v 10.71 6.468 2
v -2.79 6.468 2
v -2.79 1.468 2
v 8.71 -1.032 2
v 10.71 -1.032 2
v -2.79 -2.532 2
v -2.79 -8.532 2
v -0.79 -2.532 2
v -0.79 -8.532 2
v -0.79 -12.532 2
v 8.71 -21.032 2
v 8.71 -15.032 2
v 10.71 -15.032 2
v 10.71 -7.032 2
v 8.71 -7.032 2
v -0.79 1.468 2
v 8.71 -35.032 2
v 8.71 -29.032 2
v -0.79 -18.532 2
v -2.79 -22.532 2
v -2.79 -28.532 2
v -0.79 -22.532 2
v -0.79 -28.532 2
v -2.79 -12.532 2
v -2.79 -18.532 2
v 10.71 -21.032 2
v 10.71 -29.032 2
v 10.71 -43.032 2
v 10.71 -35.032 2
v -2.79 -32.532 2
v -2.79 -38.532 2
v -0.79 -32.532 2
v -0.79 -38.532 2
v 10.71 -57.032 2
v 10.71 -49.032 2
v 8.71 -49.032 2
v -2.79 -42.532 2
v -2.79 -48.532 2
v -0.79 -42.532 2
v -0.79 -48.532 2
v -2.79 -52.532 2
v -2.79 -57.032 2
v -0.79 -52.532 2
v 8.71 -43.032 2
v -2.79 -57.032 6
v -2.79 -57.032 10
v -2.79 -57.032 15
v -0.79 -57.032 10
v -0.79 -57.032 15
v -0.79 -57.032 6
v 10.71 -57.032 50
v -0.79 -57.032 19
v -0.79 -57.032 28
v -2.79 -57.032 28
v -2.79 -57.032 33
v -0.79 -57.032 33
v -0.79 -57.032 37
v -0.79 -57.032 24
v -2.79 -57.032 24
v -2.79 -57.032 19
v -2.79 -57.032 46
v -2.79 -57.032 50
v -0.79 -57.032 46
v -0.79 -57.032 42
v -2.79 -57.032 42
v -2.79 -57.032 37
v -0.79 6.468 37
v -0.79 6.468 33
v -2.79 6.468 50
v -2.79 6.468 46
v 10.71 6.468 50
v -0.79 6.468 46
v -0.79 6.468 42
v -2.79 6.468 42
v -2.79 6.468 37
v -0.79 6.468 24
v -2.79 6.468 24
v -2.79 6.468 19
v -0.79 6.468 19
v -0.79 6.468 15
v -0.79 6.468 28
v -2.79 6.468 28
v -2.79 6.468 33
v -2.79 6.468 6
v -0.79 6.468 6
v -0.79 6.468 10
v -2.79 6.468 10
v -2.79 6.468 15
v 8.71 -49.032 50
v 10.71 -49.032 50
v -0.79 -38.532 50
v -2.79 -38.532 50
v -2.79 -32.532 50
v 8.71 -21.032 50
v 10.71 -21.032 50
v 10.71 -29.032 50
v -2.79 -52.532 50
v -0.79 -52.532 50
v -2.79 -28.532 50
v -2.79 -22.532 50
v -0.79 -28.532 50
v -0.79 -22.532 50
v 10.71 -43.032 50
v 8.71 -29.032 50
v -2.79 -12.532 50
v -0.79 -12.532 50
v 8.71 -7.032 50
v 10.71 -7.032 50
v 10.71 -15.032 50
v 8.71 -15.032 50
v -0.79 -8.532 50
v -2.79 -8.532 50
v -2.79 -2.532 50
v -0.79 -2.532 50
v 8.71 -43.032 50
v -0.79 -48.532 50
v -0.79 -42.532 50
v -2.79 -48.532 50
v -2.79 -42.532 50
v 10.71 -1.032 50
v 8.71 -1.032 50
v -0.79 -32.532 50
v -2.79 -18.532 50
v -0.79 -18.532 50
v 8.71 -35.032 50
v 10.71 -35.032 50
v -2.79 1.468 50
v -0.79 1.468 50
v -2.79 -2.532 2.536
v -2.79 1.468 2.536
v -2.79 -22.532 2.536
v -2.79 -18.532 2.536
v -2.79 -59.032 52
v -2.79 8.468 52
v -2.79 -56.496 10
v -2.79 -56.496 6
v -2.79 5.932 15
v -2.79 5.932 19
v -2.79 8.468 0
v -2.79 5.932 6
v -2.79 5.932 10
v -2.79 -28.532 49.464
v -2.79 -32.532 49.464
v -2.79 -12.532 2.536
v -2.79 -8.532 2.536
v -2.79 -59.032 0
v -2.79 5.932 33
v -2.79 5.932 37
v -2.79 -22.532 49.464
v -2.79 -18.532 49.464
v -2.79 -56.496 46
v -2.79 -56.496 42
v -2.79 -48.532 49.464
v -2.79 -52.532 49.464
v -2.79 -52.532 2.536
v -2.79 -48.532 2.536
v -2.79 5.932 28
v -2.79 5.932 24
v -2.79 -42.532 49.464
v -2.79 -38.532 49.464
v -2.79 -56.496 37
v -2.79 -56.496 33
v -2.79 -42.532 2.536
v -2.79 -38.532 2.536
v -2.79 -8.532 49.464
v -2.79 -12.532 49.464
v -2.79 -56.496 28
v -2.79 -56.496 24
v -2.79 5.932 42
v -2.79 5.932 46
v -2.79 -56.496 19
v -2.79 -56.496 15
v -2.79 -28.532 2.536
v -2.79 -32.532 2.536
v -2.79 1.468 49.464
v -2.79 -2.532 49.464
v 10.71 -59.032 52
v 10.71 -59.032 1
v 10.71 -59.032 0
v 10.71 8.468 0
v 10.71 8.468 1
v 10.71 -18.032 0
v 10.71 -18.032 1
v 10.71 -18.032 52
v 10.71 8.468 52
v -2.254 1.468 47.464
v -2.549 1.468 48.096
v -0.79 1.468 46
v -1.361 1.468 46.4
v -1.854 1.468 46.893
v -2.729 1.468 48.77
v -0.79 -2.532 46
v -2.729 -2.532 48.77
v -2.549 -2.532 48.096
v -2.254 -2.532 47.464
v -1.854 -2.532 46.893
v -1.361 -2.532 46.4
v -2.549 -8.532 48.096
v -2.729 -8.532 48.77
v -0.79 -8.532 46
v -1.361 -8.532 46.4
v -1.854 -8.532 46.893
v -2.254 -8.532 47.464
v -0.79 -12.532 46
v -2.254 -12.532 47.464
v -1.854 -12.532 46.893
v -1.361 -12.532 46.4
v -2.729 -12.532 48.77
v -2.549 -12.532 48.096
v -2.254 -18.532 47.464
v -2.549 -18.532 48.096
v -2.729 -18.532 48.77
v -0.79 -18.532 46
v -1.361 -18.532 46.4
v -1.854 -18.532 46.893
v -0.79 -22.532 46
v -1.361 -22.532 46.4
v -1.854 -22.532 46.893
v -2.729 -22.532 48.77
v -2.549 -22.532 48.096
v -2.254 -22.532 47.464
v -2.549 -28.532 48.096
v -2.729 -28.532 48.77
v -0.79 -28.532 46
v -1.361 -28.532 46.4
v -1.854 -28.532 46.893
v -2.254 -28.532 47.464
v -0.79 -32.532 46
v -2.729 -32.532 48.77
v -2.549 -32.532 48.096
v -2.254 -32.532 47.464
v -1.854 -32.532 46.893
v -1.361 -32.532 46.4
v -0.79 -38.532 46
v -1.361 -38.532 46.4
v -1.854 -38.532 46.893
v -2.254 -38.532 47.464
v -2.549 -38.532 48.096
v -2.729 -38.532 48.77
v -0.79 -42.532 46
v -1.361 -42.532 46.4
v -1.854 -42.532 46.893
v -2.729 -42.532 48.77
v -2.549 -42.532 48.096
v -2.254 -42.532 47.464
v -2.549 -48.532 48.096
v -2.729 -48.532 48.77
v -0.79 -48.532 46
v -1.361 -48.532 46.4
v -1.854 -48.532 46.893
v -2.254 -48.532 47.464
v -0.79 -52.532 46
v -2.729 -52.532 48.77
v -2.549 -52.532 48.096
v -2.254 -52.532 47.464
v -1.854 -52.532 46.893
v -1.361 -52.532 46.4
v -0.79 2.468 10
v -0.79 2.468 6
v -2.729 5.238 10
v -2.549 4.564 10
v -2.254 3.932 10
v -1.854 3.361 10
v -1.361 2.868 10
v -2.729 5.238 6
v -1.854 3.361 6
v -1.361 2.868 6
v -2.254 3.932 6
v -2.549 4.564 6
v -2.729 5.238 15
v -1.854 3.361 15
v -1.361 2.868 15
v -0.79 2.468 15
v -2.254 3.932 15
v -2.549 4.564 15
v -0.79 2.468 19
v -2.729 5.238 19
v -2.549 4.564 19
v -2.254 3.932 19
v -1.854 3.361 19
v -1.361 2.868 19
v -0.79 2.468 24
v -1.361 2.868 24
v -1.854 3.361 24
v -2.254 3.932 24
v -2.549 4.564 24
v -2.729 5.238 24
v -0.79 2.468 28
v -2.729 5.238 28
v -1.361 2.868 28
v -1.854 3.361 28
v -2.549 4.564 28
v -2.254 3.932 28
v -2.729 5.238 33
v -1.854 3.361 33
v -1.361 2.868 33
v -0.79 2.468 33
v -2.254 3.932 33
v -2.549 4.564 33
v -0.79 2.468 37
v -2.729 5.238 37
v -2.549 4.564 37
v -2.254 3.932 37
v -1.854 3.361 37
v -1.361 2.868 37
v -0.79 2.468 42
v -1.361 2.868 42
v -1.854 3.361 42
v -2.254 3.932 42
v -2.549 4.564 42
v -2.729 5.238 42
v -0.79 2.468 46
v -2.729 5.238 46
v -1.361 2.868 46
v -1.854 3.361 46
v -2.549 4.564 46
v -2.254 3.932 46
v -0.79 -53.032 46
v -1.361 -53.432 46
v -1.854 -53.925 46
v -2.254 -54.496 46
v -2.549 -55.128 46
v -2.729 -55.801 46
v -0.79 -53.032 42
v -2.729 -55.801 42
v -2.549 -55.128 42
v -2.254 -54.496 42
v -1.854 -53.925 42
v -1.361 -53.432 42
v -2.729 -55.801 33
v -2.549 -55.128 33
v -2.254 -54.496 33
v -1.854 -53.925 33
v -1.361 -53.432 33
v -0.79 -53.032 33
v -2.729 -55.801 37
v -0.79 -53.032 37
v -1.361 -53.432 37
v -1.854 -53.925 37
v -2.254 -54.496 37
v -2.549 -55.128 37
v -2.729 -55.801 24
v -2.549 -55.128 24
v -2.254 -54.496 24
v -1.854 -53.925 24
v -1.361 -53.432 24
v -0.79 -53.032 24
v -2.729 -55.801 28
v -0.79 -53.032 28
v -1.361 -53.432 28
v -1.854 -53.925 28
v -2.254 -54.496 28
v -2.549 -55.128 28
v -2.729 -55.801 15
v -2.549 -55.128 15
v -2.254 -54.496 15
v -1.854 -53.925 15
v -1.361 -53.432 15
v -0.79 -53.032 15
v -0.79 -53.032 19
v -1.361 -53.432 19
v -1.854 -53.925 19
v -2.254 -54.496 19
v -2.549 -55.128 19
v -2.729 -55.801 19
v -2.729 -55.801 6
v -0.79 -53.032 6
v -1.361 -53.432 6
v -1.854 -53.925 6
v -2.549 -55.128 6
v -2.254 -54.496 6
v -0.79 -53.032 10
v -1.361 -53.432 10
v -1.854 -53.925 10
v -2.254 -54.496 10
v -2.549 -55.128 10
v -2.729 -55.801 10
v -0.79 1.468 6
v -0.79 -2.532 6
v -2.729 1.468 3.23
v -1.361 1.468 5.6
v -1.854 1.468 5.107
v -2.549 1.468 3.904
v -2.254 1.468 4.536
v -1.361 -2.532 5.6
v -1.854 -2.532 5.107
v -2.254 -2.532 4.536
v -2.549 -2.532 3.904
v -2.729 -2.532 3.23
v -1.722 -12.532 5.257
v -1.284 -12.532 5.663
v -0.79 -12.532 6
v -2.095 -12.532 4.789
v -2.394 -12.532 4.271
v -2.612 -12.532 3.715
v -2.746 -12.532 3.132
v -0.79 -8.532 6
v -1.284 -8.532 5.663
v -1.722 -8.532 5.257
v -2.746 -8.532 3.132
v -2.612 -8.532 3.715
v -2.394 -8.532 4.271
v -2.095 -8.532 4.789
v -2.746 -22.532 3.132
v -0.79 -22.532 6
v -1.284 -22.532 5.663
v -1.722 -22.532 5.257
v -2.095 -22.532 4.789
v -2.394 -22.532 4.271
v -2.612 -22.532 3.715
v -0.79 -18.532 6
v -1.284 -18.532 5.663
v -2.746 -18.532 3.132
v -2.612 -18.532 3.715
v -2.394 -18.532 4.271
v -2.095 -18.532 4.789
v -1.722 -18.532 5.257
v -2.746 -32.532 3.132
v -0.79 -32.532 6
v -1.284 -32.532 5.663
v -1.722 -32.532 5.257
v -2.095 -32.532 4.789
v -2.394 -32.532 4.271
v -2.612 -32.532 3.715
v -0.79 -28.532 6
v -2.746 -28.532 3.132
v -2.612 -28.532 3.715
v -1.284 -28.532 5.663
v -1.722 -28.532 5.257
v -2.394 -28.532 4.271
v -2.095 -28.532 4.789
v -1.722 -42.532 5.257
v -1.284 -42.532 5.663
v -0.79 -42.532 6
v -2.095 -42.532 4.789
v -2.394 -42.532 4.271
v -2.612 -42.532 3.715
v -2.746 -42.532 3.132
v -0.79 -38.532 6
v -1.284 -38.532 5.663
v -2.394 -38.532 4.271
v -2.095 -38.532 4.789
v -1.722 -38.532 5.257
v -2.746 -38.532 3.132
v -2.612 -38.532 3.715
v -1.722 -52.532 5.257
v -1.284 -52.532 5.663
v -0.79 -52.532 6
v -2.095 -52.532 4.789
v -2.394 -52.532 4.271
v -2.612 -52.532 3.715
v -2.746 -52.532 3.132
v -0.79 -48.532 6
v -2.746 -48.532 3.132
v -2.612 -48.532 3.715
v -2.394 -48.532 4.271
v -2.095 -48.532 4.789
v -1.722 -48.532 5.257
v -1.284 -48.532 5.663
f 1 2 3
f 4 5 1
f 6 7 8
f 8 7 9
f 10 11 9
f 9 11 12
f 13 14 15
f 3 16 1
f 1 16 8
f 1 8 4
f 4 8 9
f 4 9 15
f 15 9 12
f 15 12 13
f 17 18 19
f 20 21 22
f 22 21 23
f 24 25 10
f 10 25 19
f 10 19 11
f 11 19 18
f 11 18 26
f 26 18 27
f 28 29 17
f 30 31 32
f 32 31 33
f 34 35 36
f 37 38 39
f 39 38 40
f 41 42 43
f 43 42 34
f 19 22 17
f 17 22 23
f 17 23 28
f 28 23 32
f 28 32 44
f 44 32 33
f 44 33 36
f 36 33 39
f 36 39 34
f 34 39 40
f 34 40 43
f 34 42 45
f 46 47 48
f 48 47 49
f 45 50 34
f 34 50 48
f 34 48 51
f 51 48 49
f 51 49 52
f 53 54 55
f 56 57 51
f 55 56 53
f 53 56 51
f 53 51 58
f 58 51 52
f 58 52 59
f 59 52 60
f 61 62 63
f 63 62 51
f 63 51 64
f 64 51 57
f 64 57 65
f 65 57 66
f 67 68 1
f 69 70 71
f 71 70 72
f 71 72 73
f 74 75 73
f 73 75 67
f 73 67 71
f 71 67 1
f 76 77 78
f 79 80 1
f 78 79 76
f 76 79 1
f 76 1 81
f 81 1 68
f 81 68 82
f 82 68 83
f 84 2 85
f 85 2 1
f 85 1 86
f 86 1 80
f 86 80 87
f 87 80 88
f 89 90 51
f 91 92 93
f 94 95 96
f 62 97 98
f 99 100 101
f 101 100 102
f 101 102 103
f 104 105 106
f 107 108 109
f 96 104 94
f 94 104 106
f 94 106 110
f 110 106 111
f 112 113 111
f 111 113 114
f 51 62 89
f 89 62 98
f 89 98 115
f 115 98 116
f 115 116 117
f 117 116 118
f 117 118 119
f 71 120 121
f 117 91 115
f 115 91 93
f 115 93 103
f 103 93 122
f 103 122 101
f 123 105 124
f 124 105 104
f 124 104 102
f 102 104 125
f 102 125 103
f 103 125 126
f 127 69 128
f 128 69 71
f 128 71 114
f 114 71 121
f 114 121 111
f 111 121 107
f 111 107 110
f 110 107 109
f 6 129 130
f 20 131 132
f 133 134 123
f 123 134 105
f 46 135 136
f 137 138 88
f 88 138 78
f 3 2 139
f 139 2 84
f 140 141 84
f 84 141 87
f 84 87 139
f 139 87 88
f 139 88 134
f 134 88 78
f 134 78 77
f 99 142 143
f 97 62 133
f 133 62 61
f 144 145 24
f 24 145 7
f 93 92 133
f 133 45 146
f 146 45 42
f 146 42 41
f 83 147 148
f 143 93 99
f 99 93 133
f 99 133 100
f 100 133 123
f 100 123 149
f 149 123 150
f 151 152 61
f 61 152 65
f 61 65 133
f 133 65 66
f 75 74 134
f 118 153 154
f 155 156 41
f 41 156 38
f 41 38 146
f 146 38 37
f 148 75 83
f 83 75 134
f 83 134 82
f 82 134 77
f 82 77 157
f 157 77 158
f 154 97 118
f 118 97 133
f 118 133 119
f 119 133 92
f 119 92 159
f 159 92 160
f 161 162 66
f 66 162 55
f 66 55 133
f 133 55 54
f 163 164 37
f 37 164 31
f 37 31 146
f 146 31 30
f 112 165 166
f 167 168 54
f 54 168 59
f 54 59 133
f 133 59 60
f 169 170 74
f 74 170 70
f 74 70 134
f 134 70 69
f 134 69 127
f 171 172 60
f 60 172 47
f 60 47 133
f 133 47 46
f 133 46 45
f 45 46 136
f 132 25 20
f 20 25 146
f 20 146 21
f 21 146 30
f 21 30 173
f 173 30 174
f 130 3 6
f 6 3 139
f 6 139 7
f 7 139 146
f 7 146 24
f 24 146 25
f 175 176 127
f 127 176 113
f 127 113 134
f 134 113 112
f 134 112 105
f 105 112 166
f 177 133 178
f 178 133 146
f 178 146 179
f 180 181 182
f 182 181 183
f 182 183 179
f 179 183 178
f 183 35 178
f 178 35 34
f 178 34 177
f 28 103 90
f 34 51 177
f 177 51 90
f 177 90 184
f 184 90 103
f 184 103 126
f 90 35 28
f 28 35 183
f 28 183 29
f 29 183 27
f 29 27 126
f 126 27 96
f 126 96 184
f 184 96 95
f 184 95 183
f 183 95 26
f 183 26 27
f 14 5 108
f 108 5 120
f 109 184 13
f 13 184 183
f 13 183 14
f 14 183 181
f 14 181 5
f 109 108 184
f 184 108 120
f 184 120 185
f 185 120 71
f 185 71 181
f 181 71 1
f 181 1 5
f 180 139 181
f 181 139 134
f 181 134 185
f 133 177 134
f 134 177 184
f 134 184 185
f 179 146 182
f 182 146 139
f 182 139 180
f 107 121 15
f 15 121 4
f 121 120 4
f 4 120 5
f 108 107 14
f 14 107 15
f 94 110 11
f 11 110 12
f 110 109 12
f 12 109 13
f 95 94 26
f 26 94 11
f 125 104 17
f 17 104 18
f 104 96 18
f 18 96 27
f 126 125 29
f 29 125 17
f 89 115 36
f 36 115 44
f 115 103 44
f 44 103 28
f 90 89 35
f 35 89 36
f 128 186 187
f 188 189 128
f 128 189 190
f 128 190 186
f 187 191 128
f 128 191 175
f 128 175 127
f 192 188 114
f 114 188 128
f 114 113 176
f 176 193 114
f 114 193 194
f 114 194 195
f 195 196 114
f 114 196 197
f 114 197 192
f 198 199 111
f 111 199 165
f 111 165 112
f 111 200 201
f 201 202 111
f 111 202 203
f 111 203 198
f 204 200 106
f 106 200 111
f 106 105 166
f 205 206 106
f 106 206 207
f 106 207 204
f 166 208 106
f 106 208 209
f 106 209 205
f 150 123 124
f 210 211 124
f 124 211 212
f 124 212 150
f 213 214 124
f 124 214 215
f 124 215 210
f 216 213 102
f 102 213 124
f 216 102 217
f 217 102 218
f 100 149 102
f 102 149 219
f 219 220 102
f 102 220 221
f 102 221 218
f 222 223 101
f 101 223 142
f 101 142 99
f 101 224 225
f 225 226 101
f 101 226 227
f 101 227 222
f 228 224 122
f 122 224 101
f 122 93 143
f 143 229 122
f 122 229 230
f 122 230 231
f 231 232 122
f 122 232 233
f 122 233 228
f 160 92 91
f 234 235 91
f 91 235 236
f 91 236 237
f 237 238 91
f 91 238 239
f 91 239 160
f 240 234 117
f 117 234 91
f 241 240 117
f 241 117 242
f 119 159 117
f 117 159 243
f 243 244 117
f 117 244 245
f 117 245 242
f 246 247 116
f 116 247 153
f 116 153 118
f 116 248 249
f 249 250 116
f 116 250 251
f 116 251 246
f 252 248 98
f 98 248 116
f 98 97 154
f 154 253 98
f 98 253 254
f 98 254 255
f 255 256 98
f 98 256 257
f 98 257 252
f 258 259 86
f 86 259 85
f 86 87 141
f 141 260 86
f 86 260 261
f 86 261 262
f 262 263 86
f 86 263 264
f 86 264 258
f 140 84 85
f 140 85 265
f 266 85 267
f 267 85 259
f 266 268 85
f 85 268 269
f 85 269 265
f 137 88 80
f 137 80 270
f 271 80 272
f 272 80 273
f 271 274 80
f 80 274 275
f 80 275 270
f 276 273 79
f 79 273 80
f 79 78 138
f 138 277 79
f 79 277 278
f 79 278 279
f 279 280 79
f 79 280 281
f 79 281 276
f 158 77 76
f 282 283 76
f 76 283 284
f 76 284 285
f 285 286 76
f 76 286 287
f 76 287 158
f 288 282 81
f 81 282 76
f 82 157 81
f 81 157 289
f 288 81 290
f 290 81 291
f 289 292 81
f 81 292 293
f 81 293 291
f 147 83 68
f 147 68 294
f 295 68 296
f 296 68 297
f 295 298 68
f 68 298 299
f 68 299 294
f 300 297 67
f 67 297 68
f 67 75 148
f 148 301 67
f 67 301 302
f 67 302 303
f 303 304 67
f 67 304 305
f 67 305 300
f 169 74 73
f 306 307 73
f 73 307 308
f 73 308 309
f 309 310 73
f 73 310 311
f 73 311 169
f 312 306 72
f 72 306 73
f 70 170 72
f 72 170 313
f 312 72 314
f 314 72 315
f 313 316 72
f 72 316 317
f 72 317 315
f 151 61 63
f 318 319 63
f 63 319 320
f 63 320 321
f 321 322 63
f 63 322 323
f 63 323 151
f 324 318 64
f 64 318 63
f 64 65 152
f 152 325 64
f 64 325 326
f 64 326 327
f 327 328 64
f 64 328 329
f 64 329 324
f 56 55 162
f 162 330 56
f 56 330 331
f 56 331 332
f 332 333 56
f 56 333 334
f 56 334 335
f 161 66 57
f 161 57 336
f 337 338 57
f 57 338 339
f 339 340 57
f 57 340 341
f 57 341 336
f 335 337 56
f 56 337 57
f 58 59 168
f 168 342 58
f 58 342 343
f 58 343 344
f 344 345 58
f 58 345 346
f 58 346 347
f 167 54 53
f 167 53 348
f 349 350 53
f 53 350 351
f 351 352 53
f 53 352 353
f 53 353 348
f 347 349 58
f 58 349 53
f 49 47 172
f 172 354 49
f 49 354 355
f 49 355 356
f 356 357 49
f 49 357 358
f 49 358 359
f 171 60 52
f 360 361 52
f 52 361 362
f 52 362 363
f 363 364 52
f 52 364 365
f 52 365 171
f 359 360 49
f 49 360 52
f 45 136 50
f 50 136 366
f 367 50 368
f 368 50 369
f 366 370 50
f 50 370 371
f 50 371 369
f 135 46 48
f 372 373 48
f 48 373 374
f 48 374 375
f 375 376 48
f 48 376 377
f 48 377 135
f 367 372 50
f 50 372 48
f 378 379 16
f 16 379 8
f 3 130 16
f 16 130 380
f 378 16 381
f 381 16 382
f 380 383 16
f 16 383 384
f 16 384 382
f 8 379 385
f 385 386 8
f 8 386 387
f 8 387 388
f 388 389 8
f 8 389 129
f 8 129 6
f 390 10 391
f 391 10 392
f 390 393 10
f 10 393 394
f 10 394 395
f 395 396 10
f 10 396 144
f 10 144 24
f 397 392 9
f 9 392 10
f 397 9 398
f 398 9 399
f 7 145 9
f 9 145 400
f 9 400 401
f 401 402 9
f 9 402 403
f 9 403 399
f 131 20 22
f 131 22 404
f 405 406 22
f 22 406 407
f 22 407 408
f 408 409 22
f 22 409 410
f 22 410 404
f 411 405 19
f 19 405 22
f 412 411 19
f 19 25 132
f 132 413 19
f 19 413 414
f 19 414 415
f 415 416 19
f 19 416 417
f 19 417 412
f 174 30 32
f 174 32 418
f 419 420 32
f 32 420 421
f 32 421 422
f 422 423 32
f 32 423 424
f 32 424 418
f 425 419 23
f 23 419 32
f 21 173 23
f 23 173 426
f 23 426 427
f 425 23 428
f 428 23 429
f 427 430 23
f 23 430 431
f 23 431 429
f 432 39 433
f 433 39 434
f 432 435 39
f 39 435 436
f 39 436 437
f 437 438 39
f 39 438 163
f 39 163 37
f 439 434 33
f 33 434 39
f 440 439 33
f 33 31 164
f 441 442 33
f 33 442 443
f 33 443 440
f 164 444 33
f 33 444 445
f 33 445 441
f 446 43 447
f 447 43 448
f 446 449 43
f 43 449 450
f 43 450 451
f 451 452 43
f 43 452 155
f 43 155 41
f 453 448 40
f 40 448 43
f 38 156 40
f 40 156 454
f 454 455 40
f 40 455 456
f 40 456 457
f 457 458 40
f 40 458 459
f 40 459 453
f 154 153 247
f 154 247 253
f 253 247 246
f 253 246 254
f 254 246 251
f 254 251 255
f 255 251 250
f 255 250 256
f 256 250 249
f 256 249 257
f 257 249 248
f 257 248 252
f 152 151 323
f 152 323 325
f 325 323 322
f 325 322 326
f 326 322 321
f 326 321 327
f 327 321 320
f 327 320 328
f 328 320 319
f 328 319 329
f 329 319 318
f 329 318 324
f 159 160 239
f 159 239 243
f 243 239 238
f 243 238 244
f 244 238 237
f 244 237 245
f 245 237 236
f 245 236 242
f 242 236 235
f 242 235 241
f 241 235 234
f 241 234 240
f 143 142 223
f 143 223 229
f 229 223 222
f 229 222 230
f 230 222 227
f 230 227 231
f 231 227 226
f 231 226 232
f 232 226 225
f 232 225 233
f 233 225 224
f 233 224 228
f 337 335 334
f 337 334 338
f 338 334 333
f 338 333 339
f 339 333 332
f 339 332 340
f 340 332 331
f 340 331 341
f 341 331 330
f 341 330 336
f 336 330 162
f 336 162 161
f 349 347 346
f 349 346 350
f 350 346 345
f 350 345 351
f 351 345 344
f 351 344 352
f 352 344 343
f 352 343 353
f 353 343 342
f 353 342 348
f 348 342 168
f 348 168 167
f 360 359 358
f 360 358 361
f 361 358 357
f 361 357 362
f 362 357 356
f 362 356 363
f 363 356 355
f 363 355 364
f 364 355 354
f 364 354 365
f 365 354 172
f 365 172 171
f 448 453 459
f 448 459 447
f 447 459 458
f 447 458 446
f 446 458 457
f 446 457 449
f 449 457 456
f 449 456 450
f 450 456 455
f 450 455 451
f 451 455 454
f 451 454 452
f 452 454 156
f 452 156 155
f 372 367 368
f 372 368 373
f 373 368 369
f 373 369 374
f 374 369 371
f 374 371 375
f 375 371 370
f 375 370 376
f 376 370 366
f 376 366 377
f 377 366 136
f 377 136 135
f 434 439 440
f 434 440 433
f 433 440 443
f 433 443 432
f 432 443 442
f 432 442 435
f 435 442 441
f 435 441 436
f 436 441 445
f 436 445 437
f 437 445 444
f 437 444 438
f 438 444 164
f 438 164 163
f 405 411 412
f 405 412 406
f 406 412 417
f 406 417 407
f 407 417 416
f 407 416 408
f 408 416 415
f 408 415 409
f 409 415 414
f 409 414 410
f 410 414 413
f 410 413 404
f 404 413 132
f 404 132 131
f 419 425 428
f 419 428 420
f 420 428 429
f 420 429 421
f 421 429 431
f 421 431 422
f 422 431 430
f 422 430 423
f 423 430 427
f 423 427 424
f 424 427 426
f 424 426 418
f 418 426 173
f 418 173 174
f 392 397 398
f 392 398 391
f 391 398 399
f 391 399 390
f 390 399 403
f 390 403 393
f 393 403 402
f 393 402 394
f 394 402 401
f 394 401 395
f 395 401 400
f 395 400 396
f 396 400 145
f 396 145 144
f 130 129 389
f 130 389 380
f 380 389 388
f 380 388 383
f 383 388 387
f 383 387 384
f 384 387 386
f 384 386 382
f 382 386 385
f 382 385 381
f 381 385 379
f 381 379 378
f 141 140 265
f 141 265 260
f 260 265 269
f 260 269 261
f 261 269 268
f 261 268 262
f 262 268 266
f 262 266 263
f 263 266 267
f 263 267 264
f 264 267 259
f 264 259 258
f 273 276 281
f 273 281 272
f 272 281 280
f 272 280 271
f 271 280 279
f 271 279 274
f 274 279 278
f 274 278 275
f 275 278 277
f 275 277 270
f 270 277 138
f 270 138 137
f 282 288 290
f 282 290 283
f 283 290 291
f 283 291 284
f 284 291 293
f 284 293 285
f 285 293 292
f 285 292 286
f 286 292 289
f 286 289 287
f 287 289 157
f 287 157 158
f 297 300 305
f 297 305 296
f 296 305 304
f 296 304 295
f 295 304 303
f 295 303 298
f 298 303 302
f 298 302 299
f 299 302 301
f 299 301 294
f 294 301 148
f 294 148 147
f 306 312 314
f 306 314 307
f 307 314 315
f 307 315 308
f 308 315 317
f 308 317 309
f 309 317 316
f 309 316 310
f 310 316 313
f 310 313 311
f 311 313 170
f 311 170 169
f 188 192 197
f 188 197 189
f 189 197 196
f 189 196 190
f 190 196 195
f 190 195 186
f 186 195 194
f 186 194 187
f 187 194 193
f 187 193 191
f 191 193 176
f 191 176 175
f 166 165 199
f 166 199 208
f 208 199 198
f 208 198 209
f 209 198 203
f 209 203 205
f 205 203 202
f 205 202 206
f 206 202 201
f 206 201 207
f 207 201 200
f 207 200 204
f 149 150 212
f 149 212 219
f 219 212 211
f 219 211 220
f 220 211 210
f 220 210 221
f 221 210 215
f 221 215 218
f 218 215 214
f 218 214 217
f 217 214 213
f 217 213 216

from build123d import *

# Parameters (mm, degrees)
SKETCH_1_W          = 13.5
SKETCH_1_H          = 67.5
EXTRUDE_1_DEPTH     = 52
CUT_EXTRUDE_1_REACH = 81.819
SKETCH_2_W          = 48
SKETCH_2_H          = 63.5
EXTRUDE_2_REACH     = 80.099
SKETCH_3_W          = 2
SKETCH_3_H          = 6
SKETCH_9_W          = 2
SKETCH_9_H          = 4
EXTRUDE_3_DEPTH     = 4
SKETCH_10_W         = 2
SKETCH_10_H         = 4
EXTRUDE_4_DEPTH     = 4
SKETCH_11_W         = 2
SKETCH_11_H         = 4
EXTRUDE_5_DEPTH     = 4
SKETCH_12_W         = 2
SKETCH_12_H         = 4
EXTRUDE_6_DEPTH     = 4
FILLET_1_R          = 4


with BuildPart() as part:
    # 草图1 → 凸台-拉伸1 (new body)
    with BuildSketch(Plane.XY):
        with Locations((3.959815951, -25.281820368)):
            Rectangle(SKETCH_1_W, SKETCH_1_H)
    extrude(amount=EXTRUDE_1_DEPTH)

    # 草图2 → 切除-拉伸1 (cut, up to next)
    with BuildSketch(Plane(origin=(10.709815951, 0, 0), x_dir=(0, 0, -1), z_dir=(1, 0, 0)), mode=Mode.PRIVATE) as cut_extrude_1_sk1:
        with Locations((-26, -25.281820368)):
            Rectangle(SKETCH_2_W, SKETCH_2_H)
    cut_extrude_1_tool1 = extrude(cut_extrude_1_sk1.sketch, amount=-CUT_EXTRUDE_1_REACH, mode=Mode.PRIVATE) & part.part
    add(cut_extrude_1_tool1.solids().sort_by_distance((10.709816, -25.28182, 26))[0], mode=Mode.SUBTRACT)

    # 草图3 → 凸台-拉伸2 (add, up to next)
    with BuildSketch(Plane(origin=(0, 0, 50), x_dir=(-1, 0, 0), z_dir=(0, 0, -1)), mode=Mode.PRIVATE) as extrude_2_sk1:
        with Locations((-9.709815951, -4.031820368)):
            Rectangle(SKETCH_3_W, SKETCH_3_H)
    extrude_2_tool1 = extrude(extrude_2_sk1.sketch, amount=EXTRUDE_2_REACH, mode=Mode.PRIVATE) - part.part
    # 草图3 → 凸台-拉伸2 (add, up to next)
    with BuildSketch(Plane(origin=(0, 0, 50), x_dir=(-1, 0, 0), z_dir=(0, 0, -1)), mode=Mode.PRIVATE) as extrude_2_sk2:
        with Locations((-9.709815951, -18.031820368)):
            Rectangle(SKETCH_3_W, SKETCH_3_H)
    extrude_2_tool2 = extrude(extrude_2_sk2.sketch, amount=EXTRUDE_2_REACH, mode=Mode.PRIVATE) - part.part
    # 草图3 → 凸台-拉伸2 (add, up to next)
    with BuildSketch(Plane(origin=(0, 0, 50), x_dir=(-1, 0, 0), z_dir=(0, 0, -1)), mode=Mode.PRIVATE) as extrude_2_sk3:
        with Locations((-9.709815951, -32.031820368)):
            Rectangle(SKETCH_3_W, SKETCH_3_H)
    extrude_2_tool3 = extrude(extrude_2_sk3.sketch, amount=EXTRUDE_2_REACH, mode=Mode.PRIVATE) - part.part
    # 草图3 → 凸台-拉伸2 (add, up to next)
    with BuildSketch(Plane(origin=(0, 0, 50), x_dir=(-1, 0, 0), z_dir=(0, 0, -1)), mode=Mode.PRIVATE) as extrude_2_sk4:
        with Locations((-9.709815951, -46.031820368)):
            Rectangle(SKETCH_3_W, SKETCH_3_H)
    extrude_2_tool4 = extrude(extrude_2_sk4.sketch, amount=EXTRUDE_2_REACH, mode=Mode.PRIVATE) - part.part
    add(extrude_2_tool1.solids().sort_by_distance((9.709816, -4.03182, 50))[0])
    add(extrude_2_tool2.solids().sort_by_distance((9.709816, -18.03182, 50))[0])
    add(extrude_2_tool3.solids().sort_by_distance((9.709816, -32.03182, 50))[0])
    add(extrude_2_tool4.solids().sort_by_distance((9.709816, -46.03182, 50))[0])

    # 草图9 → 凸台-拉伸3 (add)
    with BuildSketch(Plane(origin=(0, 0, 50), x_dir=(-1, 0, 0), z_dir=(0, 0, -1))):
        with Locations((1.790184049, -0.531820368)):
            Rectangle(SKETCH_9_W, SKETCH_9_H)
        with Locations((1.790184049, -10.531820368)):
            Rectangle(SKETCH_9_W, SKETCH_9_H)
        with Locations((1.790184049, -20.531820368)):
            Rectangle(SKETCH_9_W, SKETCH_9_H)
        with Locations((1.790184049, -30.531820368)):
            Rectangle(SKETCH_9_W, SKETCH_9_H)
        with Locations((1.790184049, -40.531820368)):
            Rectangle(SKETCH_9_W, SKETCH_9_H)
        with Locations((1.790184049, -50.531820368)):
            Rectangle(SKETCH_9_W, SKETCH_9_H)
    extrude(amount=EXTRUDE_3_DEPTH)

    # 草图10 → 凸台-拉伸4 (add)
    with BuildSketch(Plane.XZ.offset(-6.468179632)):
        with Locations((-1.790184049, 8)):
            Rectangle(SKETCH_10_W, SKETCH_10_H)
        with Locations((-1.790184049, 17)):
            Rectangle(SKETCH_10_W, SKETCH_10_H)
        with Locations((-1.790184049, 26)):
            Rectangle(SKETCH_10_W, SKETCH_10_H)
        with Locations((-1.790184049, 35)):
            Rectangle(SKETCH_10_W, SKETCH_10_H)
        with Locations((-1.790184049, 44)):
            Rectangle(SKETCH_10_W, SKETCH_10_H)
    extrude(amount=EXTRUDE_4_DEPTH)

    # 草图11 → 凸台-拉伸5 (add)
    with BuildSketch(Plane(origin=(0, -57.031820368, 0), x_dir=(1, 0, 0), z_dir=(0, 1, 0))):
        with Locations((-1.790184049, -44)):
            Rectangle(SKETCH_11_W, SKETCH_11_H)
        with Locations((-1.790184049, -35)):
            Rectangle(SKETCH_11_W, SKETCH_11_H)
        with Locations((-1.790184049, -26)):
            Rectangle(SKETCH_11_W, SKETCH_11_H)
        with Locations((-1.790184049, -17)):
            Rectangle(SKETCH_11_W, SKETCH_11_H)
        with Locations((-1.790184049, -8)):
            Rectangle(SKETCH_11_W, SKETCH_11_H)
    extrude(amount=EXTRUDE_5_DEPTH)

    # 草图12 → 凸台-拉伸6 (add)
    with BuildSketch(Plane.XY.offset(2)):
        with Locations((-1.790184049, -0.531820368)):
            Rectangle(SKETCH_12_W, SKETCH_12_H)
        with Locations((-1.790184049, -10.531820368)):
            Rectangle(SKETCH_12_W, SKETCH_12_H)
        with Locations((-1.790184049, -20.531820368)):
            Rectangle(SKETCH_12_W, SKETCH_12_H)
        with Locations((-1.790184049, -30.531820368)):
            Rectangle(SKETCH_12_W, SKETCH_12_H)
        with Locations((-1.790184049, -40.531820368)):
            Rectangle(SKETCH_12_W, SKETCH_12_H)
        with Locations((-1.790184049, -50.531820368)):
            Rectangle(SKETCH_12_W, SKETCH_12_H)
    extrude(amount=EXTRUDE_6_DEPTH)

    # 圆角1
    # the kernel refuses this fillet: 4 mm, written as the material it takes off along each edge
    with BuildSketch(Plane(origin=(-2.790184049, -39.871566331, 46), x_dir=(0, 0, 1), z_dir=(0, -1, 0))) as fillet_1_piece_1_section:
        with BuildLine():
            CenterArc((3.464101615, -4), FILLET_1_R, 90, 60)
            Line((0, -2), (0, 0))
            Line((0, 0), (3.464101615, 0))
        make_face()
    fillet_1_piece_1 = extrude(amount=21.320508076, mode=Mode.PRIVATE)
    fillet_1_piece_1 = split(fillet_1_piece_1, bisect_by=Plane(origin=(-2.261213867, -53.031820368, 47.460101615), z_dir=(0, 1, 0)), keep=Keep.TOP, mode=Mode.PRIVATE)
    add(fillet_1_piece_1, mode=Mode.SUBTRACT)
    with BuildSketch(Plane(origin=(-2.790184049, -53.031820368, 46), x_dir=(0, -1, 0), z_dir=(0, 0, -1)), Plane(origin=(-2.790184049, -11.192074406, 6), x_dir=(0, 0, -1), z_dir=(0, 1, 0)), Plane(origin=(-2.790184049, 2.468179632, 6), x_dir=(0, 1, 0), z_dir=(0, 0, 1))) as fillet_1_piece_2:
        with BuildLine():
            CenterArc((3.464101615, -4), FILLET_1_R, 90, 60)
            Line((0, -2), (0, 0))
            Line((0, 0), (3.464101615, 0))
        make_face()
    extrude(amount=12.660254038, mode=Mode.SUBTRACT)
    with BuildSketch(Plane(origin=(-2.790184049, -29.871566331, 46), x_dir=(0, 0, 1), z_dir=(0, -1, 0)), Plane(origin=(-2.790184049, -19.871566331, 46), x_dir=(0, 0, 1), z_dir=(0, -1, 0)), Plane(origin=(-2.790184049, 0.128433669, 46), x_dir=(0, 0, 1), z_dir=(0, -1, 0)), Plane(origin=(-2.790184049, -9.871566331, 46), x_dir=(0, 0, 1), z_dir=(0, -1, 0))) as fillet_1_piece_3:
        with BuildLine():
            CenterArc((3.464101615, -4), FILLET_1_R, 90, 60)
            Line((0, -2), (0, 0))
            Line((0, 0), (3.464101615, 0))
        make_face()
    extrude(amount=21.320508076, mode=Mode.SUBTRACT)
    with BuildSketch(Plane(origin=(-2.790184049, -53.031820368, 24.339745962), x_dir=(0, -1, 0), z_dir=(0, 0, 1)), Plane(origin=(-2.790184049, -53.031820368, 15.339745962), x_dir=(0, -1, 0), z_dir=(0, 0, 1)), Plane(origin=(-2.790184049, -53.031820368, 6.339745962), x_dir=(0, -1, 0), z_dir=(0, 0, 1)), Plane(origin=(-2.790184049, -29.871566331, 6), x_dir=(0, 0, -1), z_dir=(0, -1, 0)), Plane(origin=(-2.790184049, -9.871566331, 6), x_dir=(0, 0, -1), z_dir=(0, -1, 0)), Plane(origin=(-2.790184049, -19.871566331, 6), x_dir=(0, 0, -1), z_dir=(0, -1, 0)), Plane(origin=(-2.790184049, 0.128433669, 6), x_dir=(0, 0, -1), z_dir=(0, -1, 0)), Plane(origin=(-2.790184049, 2.468179632, 27.660254038), x_dir=(0, 1, 0), z_dir=(0, 0, -1)), Plane(origin=(-2.790184049, 2.468179632, 36.660254038), x_dir=(0, 1, 0), z_dir=(0, 0, -1)), Plane(origin=(-2.790184049, 2.468179632, 45.660254038), x_dir=(0, 1, 0), z_dir=(0, 0, -1))) as fillet_1_piece_4:
        with BuildLine():
            CenterArc((3.464101615, 4), FILLET_1_R, 210, 60)
            Line((0, 2), (0, 0))
            Line((0, 0), (3.464101615, 0))
        make_face()
    extrude(amount=21.320508076, mode=Mode.SUBTRACT)
    with BuildSketch(Plane(origin=(-2.790184049, -39.871566331, 6), x_dir=(0, 0, -1), z_dir=(0, -1, 0)), Plane(origin=(-2.790184049, 2.468179632, 46), x_dir=(0, 1, 0), z_dir=(0, 0, -1))) as fillet_1_piece_5:
        with BuildLine():
            CenterArc((3.464101615, 4), FILLET_1_R, 210, 60)
            Line((0, 2), (0, 0))
            Line((0, 0), (3.464101615, 0))
        make_face()
    extrude(amount=12.660254038, mode=Mode.SUBTRACT)
    with BuildSketch(Plane(origin=(-2.790184049, -53.031820368, -2.660254038), x_dir=(0, -1, 0), z_dir=(0, 0, 1))) as fillet_1_piece_6_section:
        with BuildLine():
            CenterArc((3.464101615, 4), FILLET_1_R, 210, 60)
            Line((0, 2), (0, 0))
            Line((0, 0), (3.464101615, 0))
        make_face()
    fillet_1_piece_6 = extrude(amount=21.320508076, mode=Mode.PRIVATE)
    fillet_1_piece_6 = split(fillet_1_piece_6, bisect_by=Plane(origin=(-2.261213867, -54.491921984, 2), z_dir=(0, 0, 1)), keep=Keep.TOP, mode=Mode.PRIVATE)
    add(fillet_1_piece_6, mode=Mode.SUBTRACT)
    with BuildSketch(Plane(origin=(-2.790184049, -11.192074406, 46), x_dir=(0, 0, 1), z_dir=(0, 1, 0))) as fillet_1_piece_7_section:
        with BuildLine():
            CenterArc((3.464101615, 4), FILLET_1_R, 210, 60)
            Line((0, 2), (0, 0))
            Line((0, 0), (3.464101615, 0))
        make_face()
    fillet_1_piece_7 = extrude(amount=21.320508076, mode=Mode.PRIVATE)
    fillet_1_piece_7 = split(fillet_1_piece_7, bisect_by=Plane(origin=(-2.261213867, 2.468179632, 47.460101615), z_dir=(0, -1, 0)), keep=Keep.TOP, mode=Mode.PRIVATE)
    add(fillet_1_piece_7, mode=Mode.SUBTRACT)


solid = part.part
